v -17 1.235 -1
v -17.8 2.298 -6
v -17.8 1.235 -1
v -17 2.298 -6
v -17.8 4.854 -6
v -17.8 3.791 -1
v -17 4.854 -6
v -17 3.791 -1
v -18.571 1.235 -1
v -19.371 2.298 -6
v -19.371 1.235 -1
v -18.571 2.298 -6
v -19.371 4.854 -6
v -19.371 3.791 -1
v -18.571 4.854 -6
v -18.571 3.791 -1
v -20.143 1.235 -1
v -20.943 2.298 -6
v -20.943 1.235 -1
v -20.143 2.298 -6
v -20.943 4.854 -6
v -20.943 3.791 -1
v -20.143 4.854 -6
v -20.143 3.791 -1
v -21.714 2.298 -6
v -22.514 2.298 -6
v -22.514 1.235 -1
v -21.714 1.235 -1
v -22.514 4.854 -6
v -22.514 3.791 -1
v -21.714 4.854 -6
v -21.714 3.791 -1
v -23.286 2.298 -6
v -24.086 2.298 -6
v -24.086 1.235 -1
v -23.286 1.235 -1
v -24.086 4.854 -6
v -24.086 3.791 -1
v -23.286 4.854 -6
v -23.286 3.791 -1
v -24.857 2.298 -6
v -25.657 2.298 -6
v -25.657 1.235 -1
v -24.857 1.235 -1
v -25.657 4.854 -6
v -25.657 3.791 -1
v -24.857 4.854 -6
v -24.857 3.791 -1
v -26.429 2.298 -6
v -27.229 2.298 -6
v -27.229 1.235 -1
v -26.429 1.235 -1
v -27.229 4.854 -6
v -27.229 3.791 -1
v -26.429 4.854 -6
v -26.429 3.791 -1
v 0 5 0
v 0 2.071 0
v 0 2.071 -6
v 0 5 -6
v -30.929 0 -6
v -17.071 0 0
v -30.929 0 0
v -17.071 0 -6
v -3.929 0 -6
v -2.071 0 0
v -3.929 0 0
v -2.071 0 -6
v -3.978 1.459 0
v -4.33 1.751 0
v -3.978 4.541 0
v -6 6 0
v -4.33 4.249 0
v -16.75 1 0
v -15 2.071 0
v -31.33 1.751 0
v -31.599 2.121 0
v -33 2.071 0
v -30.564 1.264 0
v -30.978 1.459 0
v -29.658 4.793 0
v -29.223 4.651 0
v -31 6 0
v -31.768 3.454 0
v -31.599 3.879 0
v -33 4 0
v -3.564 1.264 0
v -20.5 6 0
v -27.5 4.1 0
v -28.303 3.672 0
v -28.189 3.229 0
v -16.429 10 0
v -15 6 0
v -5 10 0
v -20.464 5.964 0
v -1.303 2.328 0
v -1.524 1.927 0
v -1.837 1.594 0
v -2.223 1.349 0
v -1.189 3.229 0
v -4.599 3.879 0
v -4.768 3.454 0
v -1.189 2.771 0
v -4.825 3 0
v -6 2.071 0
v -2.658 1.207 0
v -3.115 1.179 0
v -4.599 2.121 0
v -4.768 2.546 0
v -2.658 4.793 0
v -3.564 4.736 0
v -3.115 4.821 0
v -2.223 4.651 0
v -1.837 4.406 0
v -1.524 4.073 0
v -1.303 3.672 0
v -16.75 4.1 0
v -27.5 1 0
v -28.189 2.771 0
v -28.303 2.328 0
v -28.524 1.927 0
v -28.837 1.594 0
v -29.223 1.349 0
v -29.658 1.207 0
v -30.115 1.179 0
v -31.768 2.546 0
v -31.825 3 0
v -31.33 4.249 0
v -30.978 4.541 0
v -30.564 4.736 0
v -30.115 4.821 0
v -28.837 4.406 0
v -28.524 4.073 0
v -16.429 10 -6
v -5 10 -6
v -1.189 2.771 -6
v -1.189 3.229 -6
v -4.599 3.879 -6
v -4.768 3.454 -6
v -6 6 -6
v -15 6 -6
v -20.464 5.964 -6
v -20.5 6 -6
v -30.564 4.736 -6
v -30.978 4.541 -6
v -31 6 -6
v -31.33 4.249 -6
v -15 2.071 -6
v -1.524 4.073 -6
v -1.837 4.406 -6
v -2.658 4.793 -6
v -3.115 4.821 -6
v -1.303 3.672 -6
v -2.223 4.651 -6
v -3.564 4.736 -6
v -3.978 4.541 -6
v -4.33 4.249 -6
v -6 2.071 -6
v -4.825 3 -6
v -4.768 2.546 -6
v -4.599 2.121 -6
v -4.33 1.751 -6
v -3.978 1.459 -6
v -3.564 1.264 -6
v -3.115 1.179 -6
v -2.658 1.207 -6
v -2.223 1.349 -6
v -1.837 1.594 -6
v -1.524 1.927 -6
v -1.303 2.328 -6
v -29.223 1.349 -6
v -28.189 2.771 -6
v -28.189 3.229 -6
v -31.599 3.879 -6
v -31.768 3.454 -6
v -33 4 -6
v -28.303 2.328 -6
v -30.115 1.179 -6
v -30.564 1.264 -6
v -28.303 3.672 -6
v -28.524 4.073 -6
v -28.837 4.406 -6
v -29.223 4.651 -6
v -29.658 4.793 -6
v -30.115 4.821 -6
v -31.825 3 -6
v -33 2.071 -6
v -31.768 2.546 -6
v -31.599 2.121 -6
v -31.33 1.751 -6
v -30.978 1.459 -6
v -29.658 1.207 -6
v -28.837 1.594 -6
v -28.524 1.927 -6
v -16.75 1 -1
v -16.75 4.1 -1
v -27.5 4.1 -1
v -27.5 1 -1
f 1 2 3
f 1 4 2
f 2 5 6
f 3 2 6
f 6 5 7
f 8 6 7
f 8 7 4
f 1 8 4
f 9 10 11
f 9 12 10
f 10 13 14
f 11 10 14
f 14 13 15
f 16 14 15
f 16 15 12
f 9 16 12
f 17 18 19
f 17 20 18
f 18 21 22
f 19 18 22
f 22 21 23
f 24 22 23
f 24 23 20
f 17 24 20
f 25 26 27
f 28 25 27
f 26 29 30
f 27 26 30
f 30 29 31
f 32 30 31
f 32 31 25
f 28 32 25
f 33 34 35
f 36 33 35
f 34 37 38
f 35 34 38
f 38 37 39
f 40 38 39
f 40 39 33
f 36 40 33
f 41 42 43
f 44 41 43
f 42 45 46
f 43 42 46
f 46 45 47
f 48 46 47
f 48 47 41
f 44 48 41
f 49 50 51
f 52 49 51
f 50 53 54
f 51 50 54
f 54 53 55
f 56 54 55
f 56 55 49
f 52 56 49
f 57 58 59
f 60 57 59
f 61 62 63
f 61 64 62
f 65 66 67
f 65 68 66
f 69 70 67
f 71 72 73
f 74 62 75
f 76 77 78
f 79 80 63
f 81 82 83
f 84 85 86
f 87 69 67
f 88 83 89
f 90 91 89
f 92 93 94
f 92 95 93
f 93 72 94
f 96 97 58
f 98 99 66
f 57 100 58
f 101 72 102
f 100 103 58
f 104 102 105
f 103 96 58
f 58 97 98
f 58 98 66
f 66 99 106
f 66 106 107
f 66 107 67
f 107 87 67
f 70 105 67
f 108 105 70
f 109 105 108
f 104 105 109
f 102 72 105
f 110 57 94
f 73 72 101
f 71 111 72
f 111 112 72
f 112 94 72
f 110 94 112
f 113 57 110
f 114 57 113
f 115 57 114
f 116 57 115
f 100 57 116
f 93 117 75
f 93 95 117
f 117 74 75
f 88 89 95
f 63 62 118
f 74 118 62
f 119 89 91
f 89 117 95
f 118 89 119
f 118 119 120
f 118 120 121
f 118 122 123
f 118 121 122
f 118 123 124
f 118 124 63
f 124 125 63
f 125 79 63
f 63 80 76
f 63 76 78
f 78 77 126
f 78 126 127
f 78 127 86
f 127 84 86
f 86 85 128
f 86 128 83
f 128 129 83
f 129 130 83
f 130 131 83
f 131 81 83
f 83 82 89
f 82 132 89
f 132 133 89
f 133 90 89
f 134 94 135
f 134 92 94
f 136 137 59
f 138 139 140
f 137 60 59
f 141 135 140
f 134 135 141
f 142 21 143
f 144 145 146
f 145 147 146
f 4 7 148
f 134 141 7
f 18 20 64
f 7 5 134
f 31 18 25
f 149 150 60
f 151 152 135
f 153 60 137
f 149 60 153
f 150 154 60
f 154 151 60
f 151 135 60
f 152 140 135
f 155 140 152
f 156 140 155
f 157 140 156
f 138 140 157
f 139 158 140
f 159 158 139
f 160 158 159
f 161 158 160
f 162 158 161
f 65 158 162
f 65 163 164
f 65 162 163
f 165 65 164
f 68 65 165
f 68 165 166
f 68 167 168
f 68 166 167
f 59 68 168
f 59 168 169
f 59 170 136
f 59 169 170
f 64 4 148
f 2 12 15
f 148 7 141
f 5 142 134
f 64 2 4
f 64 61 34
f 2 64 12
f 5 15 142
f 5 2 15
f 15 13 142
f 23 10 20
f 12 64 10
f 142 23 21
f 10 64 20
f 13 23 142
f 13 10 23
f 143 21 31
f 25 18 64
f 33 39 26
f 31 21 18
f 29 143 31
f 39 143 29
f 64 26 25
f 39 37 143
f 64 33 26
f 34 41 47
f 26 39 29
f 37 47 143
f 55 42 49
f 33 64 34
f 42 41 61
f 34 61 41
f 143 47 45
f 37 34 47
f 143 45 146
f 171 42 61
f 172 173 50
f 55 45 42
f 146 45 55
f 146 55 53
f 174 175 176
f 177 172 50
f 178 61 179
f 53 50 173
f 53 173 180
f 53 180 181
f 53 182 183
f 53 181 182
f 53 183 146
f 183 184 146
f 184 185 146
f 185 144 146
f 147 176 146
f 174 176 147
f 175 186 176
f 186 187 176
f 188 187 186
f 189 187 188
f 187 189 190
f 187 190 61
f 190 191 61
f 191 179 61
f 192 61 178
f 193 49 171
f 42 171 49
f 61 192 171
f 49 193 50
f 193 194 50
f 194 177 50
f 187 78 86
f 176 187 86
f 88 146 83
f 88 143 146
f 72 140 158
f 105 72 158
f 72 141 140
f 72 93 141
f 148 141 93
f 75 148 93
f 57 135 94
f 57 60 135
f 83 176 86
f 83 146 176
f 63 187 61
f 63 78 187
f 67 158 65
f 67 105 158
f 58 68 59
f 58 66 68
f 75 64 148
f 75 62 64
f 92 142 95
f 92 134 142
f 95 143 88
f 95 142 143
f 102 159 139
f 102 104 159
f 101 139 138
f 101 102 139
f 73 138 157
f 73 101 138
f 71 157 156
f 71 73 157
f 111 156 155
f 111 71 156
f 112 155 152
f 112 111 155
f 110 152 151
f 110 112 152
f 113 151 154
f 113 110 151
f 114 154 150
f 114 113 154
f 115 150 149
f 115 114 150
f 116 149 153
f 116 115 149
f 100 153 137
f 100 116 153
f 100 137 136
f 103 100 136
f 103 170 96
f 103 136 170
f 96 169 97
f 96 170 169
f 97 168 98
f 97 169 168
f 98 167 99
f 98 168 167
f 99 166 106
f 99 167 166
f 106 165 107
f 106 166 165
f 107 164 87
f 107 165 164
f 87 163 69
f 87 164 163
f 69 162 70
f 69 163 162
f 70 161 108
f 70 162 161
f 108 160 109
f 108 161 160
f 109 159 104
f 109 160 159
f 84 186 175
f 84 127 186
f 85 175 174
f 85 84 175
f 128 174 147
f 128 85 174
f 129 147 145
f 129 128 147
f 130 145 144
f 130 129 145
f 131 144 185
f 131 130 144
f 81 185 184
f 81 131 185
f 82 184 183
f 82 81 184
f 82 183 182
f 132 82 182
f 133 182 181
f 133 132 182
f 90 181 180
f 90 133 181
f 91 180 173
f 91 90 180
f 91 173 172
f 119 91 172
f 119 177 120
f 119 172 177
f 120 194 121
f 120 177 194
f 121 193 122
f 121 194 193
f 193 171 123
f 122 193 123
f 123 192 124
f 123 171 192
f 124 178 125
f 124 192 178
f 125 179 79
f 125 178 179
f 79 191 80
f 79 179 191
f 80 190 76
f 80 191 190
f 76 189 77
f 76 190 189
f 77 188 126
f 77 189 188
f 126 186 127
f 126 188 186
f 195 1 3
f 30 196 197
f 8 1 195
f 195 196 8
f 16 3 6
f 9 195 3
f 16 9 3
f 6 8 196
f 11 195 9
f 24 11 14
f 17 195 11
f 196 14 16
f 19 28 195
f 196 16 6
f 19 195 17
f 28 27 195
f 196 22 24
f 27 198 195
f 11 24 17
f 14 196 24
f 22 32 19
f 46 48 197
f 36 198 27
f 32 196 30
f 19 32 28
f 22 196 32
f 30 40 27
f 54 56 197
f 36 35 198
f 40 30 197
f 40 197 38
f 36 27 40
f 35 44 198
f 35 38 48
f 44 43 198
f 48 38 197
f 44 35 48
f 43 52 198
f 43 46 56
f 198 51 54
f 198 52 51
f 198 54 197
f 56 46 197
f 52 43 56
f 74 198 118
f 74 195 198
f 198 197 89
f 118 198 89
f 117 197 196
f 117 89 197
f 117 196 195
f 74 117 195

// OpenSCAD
module housing(thickness)
{
	difference() {
	cube([33,10,thickness]);
		translate([20.5,6,-1])
			cube([18,10,thickness+2]);
	//Debugging Socket	
	translate([6,-1,-1])
		cube([9,7,thickness+2]);
	//Champhered Corners	
	translate([0,5,-1])
		rotate([0,0,45])
		cube([10,6,thickness+2]);
	translate([27,10,-1])
		rotate([0,0,-45])
		cube([10,5,thickness+2]);
	translate([30.5,-7.5,-1])
		rotate([0,0,45])
		cube([10,5,thickness+2]);
	translate([3.5,-7.5,-1])
		rotate([0,0,45])
		cube([10,5,thickness+2]);		
	translate([-5.5,0.5,-1])
		rotate([0,0,-45])
		cube([10,5,thickness+2]);
	translate([9.5,0.5,-1])
		rotate([0,0,-45])
		cube([10,5,thickness+2]);
	translate([24,9.5,-1])
		rotate([0,0,135])
		cube([10,5,thickness+2]);

	//Mounting Holes
	translate([3,3,thickness/2])
		cylinder(d=3.65,h=thickness+2,center=true,$fn=25);
	translate([30,3,thickness/2])
		cylinder(d=3.65,h=thickness+2,center=true,$fn=25);
	//Light holes
	s = 11.0/7.0;
	for(i = [0:1:6]) 
		rotate([-12,0,0])
		translate([17+(i*s),1,-1])
		cube([0.8,2.5,thickness+3]);
	
	//Knockout for light housing
	translate([16.75,1,-1])
		cube([10.75,3.1,2]);
	}
}

rotate([0,180,0])
	housing(6);
